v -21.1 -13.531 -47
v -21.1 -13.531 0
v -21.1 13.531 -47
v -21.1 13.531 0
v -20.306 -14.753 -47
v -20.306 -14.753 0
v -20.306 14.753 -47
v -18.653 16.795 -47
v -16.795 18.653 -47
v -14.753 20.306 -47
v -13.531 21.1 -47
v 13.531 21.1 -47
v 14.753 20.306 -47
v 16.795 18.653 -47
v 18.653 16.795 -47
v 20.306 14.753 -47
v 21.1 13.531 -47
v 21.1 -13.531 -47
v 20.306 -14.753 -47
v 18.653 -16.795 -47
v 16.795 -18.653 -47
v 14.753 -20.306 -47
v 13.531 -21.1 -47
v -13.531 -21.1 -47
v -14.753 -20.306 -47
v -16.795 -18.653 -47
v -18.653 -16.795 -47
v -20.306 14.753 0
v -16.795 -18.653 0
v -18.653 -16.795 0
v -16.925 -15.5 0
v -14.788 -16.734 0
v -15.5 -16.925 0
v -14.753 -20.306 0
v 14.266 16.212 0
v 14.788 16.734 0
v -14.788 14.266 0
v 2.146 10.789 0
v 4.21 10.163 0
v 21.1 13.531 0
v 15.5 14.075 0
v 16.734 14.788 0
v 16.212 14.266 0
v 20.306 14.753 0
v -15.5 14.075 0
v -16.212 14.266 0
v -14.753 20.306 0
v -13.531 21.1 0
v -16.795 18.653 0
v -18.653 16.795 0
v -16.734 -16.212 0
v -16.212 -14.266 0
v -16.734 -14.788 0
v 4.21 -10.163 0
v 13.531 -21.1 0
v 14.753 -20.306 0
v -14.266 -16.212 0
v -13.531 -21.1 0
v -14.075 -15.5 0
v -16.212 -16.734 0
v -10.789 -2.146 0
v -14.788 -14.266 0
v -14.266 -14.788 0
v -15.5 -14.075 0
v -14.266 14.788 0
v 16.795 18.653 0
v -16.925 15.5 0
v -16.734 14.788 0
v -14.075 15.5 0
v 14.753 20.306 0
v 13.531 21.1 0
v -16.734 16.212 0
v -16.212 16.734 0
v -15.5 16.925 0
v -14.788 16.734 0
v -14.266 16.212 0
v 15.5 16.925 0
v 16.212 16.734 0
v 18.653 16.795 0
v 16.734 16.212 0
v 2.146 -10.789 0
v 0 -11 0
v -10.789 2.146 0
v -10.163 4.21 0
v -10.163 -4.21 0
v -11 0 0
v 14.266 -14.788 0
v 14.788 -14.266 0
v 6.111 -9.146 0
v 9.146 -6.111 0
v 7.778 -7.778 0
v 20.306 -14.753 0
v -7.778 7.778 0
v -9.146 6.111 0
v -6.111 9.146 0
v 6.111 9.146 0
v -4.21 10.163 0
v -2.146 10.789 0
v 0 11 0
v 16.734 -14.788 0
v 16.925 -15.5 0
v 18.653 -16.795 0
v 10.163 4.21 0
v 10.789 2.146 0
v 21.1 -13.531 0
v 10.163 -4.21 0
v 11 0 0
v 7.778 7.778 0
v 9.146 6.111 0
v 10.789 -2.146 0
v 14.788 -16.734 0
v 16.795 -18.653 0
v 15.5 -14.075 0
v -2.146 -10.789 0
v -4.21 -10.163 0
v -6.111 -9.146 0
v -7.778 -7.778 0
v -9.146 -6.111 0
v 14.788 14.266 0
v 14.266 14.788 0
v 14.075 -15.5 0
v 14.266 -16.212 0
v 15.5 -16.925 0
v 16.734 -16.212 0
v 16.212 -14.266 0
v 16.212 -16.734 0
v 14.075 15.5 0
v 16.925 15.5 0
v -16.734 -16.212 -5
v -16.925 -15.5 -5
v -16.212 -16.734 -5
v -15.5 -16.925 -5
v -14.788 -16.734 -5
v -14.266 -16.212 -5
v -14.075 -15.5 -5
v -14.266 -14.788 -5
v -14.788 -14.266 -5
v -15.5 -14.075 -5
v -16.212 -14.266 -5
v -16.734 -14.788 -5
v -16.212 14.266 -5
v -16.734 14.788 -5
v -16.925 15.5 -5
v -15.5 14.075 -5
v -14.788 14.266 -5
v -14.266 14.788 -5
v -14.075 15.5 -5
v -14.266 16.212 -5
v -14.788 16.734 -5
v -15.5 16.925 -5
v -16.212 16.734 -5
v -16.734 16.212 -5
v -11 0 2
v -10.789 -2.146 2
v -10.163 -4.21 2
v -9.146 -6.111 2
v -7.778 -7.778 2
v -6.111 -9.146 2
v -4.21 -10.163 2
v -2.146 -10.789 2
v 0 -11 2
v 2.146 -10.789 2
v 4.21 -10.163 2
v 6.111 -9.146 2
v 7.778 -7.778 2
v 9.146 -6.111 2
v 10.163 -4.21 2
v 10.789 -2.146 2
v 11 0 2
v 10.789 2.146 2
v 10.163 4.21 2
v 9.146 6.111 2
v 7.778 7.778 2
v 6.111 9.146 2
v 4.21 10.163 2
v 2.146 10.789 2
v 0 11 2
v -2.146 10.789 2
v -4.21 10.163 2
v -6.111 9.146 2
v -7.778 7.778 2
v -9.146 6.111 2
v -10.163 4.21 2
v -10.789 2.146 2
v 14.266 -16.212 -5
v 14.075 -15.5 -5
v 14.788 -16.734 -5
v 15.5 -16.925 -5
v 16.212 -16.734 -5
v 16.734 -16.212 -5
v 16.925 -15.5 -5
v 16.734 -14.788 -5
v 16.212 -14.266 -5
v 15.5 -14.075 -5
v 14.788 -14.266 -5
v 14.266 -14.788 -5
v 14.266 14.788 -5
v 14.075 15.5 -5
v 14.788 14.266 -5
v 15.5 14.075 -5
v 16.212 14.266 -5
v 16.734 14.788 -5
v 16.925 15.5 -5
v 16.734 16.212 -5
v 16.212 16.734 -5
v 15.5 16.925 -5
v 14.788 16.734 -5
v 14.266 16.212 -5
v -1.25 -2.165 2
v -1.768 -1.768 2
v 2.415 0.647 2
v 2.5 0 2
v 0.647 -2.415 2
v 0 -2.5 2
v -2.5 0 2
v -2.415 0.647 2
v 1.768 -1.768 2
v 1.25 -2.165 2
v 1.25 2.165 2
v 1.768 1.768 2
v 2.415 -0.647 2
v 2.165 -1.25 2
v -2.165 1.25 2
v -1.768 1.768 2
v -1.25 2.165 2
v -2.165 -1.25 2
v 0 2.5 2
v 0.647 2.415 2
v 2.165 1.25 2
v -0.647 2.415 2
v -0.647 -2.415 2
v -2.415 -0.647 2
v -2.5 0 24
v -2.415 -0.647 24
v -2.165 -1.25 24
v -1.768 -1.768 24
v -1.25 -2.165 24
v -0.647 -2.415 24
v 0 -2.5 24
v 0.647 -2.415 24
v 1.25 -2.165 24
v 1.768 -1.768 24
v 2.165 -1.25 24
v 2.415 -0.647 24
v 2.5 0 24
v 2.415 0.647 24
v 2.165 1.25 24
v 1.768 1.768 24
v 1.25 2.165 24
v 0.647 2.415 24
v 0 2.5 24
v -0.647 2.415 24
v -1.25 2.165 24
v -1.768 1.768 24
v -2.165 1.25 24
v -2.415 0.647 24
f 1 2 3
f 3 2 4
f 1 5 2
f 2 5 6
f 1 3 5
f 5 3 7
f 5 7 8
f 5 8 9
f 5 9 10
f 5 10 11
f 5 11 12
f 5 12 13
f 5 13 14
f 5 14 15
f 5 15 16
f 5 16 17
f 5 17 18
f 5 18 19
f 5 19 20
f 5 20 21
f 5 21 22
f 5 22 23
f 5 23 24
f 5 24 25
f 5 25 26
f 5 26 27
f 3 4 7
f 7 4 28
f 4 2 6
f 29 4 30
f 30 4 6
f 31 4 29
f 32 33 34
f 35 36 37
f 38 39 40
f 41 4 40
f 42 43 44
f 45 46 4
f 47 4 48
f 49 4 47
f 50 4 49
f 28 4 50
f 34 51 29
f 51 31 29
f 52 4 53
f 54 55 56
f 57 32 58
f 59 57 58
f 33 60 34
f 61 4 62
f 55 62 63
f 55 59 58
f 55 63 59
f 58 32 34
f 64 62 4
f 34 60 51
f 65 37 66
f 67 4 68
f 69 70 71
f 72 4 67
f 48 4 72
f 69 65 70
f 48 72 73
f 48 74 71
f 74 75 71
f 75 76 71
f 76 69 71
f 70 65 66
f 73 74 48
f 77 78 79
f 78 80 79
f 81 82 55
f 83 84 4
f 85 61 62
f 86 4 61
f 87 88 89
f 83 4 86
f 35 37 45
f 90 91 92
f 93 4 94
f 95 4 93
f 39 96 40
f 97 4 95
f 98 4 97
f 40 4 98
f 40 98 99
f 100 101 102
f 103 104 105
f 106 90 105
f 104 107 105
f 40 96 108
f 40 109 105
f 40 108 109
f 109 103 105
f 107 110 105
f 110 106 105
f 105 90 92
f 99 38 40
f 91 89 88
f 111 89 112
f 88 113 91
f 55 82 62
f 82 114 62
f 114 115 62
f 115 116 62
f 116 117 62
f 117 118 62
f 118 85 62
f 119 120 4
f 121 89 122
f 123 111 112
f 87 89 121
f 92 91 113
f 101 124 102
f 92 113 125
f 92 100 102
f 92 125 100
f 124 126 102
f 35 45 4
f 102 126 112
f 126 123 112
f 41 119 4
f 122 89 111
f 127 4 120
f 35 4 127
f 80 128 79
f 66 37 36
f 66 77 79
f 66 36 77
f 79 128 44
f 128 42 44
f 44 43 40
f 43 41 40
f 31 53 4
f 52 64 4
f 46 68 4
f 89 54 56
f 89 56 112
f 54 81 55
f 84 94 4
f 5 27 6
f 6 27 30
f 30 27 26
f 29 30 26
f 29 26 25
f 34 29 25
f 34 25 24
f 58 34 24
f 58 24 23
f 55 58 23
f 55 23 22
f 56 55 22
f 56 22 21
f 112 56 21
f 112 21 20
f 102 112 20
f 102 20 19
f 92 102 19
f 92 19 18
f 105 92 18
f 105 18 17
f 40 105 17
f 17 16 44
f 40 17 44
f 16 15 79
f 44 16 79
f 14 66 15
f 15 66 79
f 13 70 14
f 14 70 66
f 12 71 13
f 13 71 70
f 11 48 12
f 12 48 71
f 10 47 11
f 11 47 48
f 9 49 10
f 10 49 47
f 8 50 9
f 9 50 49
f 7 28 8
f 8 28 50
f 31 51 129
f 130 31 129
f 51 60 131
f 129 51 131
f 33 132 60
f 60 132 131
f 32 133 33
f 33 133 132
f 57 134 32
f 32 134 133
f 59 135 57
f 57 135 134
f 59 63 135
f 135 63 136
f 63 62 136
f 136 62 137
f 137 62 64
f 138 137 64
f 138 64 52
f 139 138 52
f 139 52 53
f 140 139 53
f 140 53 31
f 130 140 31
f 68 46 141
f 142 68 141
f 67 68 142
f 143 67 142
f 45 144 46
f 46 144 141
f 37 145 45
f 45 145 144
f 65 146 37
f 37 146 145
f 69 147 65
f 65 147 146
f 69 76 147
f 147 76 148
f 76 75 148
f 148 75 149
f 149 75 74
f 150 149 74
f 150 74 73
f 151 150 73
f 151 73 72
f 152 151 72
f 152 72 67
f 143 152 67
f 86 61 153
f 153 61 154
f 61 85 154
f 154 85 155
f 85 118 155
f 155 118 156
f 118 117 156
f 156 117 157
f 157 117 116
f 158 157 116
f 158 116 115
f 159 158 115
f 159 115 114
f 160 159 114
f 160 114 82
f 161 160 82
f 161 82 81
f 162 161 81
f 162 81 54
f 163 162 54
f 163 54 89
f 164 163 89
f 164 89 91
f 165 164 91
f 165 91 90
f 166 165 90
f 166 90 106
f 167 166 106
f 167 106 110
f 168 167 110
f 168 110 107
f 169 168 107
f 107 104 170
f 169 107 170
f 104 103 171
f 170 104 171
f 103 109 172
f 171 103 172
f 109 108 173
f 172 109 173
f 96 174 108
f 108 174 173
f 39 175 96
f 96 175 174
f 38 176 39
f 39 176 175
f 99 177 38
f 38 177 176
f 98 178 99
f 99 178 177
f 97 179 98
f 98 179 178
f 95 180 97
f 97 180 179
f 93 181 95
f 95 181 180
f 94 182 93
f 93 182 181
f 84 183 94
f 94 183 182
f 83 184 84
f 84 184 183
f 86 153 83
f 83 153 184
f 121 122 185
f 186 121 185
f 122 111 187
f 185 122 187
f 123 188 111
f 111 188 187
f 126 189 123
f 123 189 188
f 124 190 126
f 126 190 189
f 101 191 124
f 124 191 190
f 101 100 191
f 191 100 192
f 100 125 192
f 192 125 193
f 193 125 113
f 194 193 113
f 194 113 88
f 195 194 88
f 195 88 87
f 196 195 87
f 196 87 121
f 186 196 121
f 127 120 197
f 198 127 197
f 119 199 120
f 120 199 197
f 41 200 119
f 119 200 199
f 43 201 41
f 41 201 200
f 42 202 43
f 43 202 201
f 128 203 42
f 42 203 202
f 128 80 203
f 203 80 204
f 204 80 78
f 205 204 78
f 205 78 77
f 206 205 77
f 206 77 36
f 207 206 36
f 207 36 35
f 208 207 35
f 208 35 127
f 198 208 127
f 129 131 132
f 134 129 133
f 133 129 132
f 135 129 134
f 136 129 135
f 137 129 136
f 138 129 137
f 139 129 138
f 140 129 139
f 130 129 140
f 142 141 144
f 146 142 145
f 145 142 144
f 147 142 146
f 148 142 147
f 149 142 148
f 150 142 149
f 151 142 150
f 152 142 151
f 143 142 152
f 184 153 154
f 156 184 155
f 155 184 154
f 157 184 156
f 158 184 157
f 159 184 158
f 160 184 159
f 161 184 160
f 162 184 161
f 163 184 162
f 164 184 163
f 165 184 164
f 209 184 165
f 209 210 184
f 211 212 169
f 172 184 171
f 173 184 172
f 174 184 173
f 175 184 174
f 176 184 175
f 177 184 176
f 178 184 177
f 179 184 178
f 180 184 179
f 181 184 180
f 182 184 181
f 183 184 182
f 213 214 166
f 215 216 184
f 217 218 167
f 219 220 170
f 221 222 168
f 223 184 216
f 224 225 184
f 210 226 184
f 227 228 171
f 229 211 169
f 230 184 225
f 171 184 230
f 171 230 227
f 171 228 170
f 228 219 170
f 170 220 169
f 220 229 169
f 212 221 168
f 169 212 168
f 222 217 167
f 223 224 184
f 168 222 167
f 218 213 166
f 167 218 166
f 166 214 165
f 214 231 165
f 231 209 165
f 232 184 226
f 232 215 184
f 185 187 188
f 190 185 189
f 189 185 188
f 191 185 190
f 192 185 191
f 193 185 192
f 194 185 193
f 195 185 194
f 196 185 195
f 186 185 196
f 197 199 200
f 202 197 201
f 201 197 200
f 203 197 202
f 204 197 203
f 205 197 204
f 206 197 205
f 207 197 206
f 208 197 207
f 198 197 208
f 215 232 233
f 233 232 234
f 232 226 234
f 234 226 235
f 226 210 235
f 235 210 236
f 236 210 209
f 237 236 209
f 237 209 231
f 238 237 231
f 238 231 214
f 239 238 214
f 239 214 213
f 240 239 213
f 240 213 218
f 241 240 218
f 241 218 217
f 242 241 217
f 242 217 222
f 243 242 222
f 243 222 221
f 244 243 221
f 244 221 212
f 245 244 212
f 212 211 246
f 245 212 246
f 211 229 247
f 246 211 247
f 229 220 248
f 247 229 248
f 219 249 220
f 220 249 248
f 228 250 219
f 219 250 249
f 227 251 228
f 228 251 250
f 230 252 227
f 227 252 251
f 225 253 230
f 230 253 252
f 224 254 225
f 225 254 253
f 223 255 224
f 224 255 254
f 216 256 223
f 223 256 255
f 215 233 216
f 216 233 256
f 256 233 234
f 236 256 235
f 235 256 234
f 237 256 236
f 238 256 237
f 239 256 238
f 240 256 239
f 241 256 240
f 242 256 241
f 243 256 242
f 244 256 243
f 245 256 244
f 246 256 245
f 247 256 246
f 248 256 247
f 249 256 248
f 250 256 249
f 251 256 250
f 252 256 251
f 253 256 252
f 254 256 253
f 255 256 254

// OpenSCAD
// From Mini Kossel https://github.com/jcrocholl/kossel/blob/master/nema17.scad

module nema17() {
  motor_shaft_diameter = 5;
  motor_shaft_radius = motor_shaft_diameter/2;
  motor_length = 47;
  m3_major = 2.85;
  m3_radius = m3_major/2;

  // NEMA 17 stepper motor.
  difference() {
    union() {
      translate([0, 0, -motor_length/2]) intersection() {
        cube([42.2, 42.2, motor_length], center=true);
        cylinder(r=25.1, h=motor_length+1, center=true, $fn=60);
      }
      cylinder(r=11, h=4, center=true, $fn=32);
      cylinder(r=2.5, h=48, center=true, $fn=24);
    }
    for (a = [0:90:359]) {
      rotate([0, 0, a]) translate([15.5, 15.5, 0])
        cylinder(r=m3_radius, h=10, center=true, $fn=12);
    }
  }
}

nema17();
